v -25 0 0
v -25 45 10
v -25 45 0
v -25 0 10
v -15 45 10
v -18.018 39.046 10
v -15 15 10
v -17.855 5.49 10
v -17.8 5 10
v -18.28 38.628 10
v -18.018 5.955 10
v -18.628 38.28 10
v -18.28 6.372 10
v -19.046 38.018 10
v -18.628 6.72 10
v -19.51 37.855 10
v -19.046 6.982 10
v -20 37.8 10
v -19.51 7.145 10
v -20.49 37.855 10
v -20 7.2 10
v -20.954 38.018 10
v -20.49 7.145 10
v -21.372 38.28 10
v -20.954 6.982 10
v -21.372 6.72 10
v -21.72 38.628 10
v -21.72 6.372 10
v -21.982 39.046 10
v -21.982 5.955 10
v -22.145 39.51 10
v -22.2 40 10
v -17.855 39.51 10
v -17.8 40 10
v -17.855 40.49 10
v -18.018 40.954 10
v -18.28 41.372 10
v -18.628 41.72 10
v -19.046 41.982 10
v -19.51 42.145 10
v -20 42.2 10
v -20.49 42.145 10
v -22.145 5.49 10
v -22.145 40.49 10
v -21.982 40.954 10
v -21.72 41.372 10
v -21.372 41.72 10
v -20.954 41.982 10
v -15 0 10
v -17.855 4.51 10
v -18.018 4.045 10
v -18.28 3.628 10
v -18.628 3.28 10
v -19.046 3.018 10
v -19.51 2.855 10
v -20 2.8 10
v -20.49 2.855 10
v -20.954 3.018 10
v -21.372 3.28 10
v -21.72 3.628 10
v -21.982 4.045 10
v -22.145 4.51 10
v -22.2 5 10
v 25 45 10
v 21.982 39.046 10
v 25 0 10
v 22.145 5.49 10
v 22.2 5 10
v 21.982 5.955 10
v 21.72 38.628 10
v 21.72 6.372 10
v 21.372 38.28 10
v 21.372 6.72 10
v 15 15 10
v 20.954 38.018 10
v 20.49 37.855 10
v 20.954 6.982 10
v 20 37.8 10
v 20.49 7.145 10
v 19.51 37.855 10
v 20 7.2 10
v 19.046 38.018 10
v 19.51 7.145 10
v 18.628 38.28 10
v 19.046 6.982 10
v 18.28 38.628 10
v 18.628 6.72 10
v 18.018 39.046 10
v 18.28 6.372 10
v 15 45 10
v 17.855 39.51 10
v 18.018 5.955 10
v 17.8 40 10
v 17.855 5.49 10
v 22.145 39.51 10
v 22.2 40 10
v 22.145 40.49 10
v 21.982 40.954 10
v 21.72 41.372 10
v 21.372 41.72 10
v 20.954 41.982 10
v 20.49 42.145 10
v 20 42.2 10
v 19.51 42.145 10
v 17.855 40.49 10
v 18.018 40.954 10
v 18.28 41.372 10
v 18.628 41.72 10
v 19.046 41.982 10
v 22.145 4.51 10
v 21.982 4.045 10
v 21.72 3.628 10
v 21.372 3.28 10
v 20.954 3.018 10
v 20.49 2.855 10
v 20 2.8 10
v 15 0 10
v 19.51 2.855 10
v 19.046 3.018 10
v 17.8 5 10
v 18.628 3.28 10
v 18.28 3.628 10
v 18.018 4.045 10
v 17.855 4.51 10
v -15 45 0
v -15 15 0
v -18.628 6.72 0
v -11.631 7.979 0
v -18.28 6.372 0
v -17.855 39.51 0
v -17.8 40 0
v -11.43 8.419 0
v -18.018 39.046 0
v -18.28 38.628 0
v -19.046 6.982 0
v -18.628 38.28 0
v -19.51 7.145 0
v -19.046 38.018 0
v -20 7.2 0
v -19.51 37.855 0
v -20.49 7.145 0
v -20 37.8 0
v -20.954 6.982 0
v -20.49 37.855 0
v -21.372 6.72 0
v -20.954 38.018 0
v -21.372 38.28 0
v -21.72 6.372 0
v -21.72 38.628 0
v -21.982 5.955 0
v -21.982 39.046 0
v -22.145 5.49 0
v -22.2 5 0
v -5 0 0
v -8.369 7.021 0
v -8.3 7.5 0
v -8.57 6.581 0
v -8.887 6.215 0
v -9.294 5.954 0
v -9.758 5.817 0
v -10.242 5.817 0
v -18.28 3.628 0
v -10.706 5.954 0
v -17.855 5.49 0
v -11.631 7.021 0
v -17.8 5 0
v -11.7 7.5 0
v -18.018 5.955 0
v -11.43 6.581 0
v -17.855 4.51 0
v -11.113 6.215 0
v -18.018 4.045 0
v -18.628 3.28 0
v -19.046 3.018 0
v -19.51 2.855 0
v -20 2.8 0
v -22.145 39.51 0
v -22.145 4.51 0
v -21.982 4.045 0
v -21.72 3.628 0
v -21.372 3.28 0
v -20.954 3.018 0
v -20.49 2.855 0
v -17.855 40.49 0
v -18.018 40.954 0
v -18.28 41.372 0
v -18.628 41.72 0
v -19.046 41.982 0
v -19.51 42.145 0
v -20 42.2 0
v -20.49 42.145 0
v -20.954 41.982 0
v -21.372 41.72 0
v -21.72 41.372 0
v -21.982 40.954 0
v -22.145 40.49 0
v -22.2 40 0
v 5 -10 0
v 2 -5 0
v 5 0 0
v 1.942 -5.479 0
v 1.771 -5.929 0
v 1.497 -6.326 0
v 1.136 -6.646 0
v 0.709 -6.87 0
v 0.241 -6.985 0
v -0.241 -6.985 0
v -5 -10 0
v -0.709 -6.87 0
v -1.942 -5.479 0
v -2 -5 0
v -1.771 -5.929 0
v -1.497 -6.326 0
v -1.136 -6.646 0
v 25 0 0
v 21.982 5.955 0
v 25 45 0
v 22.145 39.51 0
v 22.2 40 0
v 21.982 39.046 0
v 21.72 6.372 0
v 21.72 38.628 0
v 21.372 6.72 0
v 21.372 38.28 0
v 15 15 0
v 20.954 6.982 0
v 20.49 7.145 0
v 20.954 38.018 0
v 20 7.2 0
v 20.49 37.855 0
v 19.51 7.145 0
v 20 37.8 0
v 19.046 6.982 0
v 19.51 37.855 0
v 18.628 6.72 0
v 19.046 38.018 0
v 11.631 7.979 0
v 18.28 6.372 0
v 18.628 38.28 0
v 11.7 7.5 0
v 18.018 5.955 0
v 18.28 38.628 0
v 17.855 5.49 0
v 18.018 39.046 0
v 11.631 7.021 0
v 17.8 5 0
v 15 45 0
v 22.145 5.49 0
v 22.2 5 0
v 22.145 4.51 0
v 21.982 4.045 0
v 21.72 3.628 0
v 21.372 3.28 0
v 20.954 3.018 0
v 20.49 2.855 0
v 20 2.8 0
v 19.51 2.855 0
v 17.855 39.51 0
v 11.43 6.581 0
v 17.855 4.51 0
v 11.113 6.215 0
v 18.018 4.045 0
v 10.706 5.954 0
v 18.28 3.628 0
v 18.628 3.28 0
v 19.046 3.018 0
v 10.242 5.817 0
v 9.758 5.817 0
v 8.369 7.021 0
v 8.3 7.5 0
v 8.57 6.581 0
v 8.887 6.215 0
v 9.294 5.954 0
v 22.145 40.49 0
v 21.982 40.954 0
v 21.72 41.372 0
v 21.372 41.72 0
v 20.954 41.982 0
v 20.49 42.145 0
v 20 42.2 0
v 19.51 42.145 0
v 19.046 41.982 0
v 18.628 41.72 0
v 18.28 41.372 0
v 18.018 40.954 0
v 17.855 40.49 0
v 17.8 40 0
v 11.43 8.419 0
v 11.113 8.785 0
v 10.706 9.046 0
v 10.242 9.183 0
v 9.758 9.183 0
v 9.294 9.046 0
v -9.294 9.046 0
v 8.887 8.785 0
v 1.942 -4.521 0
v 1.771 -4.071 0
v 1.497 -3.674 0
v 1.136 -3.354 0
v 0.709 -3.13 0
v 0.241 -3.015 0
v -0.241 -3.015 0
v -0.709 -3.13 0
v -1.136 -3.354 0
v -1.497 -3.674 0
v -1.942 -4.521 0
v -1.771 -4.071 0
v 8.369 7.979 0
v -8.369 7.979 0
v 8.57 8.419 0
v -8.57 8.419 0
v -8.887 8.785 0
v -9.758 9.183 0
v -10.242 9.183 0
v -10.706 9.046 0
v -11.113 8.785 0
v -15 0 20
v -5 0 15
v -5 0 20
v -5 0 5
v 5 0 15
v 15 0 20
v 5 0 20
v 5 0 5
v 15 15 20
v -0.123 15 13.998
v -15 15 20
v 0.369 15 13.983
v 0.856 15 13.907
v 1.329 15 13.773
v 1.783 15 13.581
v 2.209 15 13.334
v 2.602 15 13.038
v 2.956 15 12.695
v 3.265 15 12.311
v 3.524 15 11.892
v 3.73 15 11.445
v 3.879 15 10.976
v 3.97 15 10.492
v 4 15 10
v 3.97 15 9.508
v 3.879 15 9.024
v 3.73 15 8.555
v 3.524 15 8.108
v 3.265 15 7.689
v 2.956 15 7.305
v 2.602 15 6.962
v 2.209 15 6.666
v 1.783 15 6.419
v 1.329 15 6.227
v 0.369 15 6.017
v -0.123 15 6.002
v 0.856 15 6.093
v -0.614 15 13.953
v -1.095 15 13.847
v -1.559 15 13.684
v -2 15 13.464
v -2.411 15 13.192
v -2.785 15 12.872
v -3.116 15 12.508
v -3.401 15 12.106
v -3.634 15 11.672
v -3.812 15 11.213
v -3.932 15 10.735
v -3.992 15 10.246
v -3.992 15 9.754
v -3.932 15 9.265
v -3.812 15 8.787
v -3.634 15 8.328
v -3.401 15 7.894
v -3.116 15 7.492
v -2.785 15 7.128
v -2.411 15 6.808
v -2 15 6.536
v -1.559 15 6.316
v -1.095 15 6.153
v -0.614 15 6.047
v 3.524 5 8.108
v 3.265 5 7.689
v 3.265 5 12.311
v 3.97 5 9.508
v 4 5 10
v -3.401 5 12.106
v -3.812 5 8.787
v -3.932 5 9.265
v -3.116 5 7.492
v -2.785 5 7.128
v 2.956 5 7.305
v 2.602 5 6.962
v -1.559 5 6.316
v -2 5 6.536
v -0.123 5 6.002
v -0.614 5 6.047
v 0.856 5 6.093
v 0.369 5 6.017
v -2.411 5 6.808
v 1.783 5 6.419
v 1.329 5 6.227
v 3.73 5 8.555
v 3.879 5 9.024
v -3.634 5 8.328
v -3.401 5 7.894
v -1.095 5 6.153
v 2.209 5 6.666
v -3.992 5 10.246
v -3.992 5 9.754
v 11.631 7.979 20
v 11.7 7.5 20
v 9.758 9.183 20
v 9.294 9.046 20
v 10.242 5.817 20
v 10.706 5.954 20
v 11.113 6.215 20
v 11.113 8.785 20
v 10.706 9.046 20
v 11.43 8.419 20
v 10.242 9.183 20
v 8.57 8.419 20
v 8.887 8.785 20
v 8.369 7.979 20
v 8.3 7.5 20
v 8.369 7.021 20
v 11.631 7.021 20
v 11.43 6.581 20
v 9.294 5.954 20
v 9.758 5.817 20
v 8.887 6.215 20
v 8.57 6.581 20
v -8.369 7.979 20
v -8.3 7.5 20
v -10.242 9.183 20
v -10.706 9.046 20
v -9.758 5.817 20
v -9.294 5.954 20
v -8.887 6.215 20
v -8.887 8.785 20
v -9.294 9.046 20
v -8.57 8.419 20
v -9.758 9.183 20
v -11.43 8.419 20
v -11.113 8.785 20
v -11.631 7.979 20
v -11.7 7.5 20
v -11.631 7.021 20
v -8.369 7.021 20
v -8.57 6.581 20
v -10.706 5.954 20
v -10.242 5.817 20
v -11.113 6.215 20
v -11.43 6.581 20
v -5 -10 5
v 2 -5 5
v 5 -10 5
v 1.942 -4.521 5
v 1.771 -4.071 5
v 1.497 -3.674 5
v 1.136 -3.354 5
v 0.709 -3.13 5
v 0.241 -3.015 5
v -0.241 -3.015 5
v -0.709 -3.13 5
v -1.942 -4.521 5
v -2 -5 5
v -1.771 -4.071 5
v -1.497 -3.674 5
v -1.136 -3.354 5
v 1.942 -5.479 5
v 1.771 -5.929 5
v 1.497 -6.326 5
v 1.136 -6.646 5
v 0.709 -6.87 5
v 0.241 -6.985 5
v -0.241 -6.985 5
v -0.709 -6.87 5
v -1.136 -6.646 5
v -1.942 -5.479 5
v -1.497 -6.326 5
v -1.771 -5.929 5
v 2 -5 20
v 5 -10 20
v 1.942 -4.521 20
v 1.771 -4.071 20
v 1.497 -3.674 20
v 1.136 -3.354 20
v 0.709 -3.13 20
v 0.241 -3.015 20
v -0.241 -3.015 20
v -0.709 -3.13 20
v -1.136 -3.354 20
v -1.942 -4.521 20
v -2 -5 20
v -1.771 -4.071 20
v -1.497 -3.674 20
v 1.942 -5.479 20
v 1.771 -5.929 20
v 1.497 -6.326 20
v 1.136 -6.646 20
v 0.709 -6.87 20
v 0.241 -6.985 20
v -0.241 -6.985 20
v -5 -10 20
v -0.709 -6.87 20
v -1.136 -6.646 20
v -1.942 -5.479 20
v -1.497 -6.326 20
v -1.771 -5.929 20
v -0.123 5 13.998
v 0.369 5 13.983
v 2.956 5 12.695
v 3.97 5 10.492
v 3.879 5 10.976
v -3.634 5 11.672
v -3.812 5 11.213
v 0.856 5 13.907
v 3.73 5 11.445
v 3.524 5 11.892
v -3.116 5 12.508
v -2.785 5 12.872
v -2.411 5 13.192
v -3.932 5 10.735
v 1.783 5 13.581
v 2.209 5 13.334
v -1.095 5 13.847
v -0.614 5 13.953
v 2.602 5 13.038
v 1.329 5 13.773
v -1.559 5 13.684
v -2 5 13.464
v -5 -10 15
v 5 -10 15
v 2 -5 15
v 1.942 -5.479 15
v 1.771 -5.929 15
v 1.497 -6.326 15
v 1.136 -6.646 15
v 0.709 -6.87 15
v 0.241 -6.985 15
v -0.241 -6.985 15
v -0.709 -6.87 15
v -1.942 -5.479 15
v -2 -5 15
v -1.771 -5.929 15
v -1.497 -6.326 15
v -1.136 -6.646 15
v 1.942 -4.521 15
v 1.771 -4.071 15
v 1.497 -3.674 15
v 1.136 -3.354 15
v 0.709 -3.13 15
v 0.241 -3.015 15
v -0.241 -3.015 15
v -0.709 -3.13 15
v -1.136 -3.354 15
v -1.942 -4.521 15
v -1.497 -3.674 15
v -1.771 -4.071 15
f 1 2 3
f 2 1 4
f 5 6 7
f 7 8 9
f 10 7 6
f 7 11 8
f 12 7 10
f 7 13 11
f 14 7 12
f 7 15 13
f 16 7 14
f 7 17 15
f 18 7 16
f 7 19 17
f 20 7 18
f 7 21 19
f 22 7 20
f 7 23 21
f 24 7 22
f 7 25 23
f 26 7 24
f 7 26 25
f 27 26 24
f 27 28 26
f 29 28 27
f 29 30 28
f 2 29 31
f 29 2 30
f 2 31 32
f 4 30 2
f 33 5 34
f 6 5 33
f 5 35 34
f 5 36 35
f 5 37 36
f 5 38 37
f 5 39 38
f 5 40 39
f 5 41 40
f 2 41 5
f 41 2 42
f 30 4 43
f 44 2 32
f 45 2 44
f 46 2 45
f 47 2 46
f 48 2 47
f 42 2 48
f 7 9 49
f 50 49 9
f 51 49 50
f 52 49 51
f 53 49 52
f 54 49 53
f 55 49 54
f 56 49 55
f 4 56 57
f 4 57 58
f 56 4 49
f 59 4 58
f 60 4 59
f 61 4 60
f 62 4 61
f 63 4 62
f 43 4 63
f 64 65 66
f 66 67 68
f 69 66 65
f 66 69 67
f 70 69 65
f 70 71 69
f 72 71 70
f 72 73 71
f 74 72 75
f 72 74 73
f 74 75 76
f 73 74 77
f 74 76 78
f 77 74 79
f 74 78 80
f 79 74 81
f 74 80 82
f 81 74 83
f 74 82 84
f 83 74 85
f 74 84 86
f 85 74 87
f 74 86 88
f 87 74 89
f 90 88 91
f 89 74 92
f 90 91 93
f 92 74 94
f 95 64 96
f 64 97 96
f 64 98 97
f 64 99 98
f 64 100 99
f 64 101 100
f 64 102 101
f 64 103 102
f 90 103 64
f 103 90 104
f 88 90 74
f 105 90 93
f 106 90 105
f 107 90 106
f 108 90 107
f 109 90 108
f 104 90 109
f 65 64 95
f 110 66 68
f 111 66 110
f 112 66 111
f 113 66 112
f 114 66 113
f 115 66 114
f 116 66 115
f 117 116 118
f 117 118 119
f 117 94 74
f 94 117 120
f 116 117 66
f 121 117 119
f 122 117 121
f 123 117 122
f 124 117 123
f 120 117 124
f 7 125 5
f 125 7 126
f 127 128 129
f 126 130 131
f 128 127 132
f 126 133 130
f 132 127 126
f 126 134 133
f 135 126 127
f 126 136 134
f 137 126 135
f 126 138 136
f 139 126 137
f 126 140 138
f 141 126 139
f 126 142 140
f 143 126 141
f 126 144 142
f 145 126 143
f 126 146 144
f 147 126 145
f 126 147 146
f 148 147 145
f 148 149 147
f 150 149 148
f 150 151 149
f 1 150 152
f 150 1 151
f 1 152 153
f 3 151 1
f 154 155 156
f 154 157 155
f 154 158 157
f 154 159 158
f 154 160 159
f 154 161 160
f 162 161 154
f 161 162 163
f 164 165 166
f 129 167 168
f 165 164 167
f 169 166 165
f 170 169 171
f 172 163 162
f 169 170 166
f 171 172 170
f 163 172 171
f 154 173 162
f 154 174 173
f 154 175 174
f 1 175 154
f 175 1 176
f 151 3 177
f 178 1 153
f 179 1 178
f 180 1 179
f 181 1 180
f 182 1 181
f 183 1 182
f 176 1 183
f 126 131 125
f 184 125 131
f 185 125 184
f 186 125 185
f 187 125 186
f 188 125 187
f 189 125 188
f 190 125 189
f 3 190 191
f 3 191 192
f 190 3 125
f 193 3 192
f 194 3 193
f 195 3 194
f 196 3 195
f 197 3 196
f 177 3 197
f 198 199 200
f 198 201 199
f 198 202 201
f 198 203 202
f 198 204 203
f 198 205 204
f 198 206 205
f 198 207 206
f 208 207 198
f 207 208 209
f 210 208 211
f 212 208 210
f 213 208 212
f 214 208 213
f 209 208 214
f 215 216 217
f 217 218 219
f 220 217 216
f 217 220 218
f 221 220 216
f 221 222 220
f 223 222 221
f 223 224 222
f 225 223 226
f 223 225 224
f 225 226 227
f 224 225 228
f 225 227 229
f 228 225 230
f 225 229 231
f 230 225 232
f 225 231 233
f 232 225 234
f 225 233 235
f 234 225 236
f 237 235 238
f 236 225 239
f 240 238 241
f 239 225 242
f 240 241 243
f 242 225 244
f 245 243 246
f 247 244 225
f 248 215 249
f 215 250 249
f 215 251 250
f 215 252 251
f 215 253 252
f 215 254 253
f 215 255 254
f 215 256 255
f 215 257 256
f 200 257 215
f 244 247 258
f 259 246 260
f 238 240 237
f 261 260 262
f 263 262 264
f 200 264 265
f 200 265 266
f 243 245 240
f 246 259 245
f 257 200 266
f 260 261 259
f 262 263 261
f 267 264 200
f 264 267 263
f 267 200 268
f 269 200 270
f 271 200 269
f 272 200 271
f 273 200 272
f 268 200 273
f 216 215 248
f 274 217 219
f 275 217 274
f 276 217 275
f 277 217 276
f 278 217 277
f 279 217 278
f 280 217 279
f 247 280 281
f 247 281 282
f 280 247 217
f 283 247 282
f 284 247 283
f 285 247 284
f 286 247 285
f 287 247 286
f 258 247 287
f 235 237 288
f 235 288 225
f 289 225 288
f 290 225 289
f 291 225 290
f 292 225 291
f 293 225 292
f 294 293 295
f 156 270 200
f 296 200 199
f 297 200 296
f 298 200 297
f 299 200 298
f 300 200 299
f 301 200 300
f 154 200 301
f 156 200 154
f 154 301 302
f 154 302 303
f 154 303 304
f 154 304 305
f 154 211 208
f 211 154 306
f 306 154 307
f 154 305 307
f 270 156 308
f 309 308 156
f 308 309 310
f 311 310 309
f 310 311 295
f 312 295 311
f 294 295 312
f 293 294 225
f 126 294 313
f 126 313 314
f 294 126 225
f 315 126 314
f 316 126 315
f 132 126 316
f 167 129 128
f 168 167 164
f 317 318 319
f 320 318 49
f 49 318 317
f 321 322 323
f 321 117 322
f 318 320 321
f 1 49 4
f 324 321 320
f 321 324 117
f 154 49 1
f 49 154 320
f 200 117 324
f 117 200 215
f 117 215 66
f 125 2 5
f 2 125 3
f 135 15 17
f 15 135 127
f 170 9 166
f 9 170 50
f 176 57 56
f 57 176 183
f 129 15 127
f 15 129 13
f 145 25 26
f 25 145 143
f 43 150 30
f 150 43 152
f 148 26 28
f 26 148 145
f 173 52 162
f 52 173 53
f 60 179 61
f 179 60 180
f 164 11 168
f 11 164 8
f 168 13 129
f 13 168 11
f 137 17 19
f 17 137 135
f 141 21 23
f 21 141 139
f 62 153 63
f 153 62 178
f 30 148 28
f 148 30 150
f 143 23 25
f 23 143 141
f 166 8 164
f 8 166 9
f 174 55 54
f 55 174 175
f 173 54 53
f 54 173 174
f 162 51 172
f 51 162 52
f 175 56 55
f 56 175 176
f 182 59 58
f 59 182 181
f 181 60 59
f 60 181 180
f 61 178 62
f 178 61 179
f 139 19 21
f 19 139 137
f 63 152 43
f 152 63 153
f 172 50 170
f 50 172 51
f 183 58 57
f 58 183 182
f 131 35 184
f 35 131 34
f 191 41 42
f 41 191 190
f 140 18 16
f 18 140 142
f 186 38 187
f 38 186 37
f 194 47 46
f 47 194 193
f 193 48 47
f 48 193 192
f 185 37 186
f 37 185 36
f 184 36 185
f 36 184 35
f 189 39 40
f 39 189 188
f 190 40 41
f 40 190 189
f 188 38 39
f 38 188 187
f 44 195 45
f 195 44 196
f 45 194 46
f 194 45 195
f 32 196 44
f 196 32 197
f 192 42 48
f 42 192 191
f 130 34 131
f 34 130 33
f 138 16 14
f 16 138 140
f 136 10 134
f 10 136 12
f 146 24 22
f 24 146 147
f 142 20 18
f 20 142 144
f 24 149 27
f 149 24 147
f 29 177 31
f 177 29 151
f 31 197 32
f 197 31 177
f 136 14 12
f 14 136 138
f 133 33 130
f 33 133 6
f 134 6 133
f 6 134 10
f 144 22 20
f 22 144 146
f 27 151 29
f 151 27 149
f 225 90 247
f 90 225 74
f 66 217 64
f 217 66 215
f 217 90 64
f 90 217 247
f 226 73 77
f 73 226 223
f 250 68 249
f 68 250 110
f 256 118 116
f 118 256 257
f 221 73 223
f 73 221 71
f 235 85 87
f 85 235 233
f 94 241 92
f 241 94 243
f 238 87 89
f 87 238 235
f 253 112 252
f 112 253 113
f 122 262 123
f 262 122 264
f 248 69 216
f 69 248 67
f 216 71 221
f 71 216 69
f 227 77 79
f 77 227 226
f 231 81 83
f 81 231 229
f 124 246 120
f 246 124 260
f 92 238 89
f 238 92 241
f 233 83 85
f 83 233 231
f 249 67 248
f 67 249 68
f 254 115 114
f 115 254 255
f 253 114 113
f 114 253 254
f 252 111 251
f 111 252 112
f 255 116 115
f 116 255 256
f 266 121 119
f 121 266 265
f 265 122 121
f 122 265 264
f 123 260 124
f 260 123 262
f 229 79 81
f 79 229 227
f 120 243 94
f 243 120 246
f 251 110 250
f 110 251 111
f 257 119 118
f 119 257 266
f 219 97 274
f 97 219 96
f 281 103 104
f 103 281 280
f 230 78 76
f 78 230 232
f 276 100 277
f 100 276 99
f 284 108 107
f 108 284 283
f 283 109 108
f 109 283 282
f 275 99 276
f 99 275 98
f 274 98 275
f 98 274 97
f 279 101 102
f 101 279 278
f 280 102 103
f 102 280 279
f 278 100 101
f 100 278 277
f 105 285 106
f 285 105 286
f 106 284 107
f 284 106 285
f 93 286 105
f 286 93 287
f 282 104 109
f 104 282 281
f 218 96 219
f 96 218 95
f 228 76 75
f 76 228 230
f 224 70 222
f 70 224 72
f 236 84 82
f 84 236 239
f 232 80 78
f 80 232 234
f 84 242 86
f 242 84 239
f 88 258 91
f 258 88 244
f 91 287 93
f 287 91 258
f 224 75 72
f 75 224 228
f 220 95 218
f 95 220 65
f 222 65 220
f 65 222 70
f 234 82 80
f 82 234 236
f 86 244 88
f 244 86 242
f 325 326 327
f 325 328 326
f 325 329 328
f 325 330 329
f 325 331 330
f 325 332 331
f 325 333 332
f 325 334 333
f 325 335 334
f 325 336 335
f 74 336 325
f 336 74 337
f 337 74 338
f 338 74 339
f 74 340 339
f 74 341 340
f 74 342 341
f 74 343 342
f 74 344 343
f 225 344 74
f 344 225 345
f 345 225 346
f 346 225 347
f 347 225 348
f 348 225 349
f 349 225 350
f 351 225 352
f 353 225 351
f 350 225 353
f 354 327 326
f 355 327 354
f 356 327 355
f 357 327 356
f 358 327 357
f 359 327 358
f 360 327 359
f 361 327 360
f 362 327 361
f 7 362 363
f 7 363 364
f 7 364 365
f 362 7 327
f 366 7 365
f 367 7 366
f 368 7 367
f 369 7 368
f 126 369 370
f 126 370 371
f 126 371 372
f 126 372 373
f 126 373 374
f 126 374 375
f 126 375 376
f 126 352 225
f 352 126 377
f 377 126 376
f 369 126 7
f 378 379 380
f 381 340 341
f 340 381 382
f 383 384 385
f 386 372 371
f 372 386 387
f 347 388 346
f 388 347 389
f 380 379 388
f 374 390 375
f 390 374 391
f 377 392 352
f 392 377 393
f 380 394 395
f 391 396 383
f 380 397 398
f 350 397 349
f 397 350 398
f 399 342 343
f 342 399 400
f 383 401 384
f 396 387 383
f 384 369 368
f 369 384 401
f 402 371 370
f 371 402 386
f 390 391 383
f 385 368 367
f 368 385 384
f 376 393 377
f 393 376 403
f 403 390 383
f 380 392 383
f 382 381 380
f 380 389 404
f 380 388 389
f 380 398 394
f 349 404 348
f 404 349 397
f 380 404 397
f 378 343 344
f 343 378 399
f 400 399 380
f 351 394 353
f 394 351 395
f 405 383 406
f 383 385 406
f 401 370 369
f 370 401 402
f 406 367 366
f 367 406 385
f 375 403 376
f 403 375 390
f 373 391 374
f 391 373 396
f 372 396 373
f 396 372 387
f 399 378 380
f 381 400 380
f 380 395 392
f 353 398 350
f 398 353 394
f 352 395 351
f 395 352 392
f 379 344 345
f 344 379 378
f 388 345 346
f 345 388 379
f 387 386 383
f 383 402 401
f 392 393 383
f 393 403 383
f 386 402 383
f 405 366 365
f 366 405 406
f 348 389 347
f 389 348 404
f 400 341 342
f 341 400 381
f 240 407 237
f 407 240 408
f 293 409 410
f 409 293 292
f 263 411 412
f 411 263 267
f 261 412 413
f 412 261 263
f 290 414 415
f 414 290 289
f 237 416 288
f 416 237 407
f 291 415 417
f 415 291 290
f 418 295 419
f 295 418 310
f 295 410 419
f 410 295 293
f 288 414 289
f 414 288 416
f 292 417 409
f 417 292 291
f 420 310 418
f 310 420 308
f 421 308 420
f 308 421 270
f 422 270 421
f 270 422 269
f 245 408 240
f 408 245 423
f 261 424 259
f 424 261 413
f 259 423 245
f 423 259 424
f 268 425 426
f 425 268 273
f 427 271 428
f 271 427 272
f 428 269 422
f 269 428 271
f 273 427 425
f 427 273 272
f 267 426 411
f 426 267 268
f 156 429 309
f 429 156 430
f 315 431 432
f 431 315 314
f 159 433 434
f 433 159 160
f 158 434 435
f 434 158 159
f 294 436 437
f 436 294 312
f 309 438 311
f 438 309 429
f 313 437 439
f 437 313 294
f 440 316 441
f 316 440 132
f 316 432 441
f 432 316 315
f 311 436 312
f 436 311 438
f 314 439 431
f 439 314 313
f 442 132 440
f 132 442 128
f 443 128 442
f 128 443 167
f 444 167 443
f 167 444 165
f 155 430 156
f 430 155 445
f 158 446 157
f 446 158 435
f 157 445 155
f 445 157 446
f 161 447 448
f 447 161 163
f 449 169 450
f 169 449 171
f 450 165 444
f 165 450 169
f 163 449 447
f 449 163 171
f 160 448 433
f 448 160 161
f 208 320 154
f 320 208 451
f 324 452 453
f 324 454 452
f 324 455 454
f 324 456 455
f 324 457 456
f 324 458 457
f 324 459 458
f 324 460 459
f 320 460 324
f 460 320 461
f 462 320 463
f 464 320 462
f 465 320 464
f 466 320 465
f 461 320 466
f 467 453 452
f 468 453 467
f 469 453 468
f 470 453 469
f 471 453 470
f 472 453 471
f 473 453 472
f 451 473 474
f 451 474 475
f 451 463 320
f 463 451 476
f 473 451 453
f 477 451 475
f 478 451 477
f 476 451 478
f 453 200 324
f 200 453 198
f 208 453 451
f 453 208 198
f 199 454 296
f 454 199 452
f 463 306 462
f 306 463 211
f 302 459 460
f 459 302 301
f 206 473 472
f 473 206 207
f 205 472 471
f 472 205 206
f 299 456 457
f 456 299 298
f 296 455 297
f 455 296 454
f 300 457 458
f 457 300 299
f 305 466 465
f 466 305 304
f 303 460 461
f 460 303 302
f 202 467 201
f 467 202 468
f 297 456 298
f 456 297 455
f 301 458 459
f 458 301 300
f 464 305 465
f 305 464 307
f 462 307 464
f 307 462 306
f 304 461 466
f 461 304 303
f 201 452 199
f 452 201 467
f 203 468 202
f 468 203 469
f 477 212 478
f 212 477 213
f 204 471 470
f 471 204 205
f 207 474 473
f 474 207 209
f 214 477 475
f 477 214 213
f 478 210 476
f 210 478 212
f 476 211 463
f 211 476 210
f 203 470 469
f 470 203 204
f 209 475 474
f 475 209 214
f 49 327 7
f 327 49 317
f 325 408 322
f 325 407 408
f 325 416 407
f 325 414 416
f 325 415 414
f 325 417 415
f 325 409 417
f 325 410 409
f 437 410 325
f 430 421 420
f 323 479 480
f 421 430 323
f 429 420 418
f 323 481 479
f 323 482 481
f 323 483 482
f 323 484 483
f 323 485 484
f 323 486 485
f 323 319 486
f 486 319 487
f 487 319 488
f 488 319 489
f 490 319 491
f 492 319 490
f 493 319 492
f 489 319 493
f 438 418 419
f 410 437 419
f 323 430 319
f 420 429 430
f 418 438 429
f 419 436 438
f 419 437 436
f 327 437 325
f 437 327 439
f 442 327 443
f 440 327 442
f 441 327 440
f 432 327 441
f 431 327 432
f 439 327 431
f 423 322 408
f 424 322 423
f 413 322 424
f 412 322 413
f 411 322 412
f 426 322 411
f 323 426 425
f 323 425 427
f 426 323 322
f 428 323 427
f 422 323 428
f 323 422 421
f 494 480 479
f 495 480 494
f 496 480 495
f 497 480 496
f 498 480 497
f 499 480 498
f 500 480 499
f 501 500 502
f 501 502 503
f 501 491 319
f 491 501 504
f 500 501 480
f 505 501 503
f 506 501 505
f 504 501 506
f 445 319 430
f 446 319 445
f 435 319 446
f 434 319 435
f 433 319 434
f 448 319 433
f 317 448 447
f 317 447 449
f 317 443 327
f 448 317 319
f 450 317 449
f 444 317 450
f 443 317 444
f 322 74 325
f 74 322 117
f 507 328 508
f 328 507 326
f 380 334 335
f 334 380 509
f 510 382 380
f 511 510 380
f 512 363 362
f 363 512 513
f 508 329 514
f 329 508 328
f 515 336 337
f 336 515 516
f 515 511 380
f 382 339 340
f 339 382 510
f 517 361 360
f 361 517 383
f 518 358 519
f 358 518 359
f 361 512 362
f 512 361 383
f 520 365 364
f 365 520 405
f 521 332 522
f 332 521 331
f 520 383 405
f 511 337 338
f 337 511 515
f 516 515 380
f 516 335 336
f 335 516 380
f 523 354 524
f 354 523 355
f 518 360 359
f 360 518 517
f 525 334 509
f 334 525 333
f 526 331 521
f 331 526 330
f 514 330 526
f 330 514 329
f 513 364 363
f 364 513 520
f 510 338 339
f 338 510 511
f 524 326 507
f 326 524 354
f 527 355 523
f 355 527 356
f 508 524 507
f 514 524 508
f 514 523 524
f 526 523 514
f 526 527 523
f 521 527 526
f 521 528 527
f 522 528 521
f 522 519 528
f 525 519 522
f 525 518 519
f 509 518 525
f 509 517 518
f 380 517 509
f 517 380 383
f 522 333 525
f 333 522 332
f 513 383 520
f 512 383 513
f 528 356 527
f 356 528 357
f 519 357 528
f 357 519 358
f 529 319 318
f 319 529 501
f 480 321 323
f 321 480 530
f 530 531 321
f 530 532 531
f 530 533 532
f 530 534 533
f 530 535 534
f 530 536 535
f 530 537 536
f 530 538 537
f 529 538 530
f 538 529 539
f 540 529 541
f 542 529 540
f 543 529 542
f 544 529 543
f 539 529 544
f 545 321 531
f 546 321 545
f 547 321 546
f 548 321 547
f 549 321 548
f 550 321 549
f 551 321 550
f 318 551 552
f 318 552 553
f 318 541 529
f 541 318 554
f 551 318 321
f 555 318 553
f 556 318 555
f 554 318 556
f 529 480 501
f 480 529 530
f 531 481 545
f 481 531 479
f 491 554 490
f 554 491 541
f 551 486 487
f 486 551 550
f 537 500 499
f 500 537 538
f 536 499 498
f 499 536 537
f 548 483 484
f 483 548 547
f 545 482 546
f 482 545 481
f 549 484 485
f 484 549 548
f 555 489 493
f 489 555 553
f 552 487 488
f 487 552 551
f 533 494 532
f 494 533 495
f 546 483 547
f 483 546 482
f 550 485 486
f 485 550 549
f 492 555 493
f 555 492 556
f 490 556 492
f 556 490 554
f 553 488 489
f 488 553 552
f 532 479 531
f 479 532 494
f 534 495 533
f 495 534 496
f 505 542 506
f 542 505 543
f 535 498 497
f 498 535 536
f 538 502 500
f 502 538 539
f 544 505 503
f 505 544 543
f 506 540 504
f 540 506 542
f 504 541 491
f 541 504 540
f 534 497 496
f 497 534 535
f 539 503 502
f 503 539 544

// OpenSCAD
// file: nutTrap.scad
module NutTrap(screw="m3", trapDepth=0, depth=100) {
		hexEdge=3.1;
		trapDepth = trapDepth==0 ? 2.4 : trapDepth;
		holeDiam=3.4;

	union() {
		translate([0,0,-.5])
			linear_extrude(height=trapDepth+.5)
			polygon(points=[
				[-hexEdge,0],
				[-hexEdge*sin(30), -hexEdge*cos(30)],
				[hexEdge*sin(30), -hexEdge*cos(30)],
				[hexEdge,0],
				[hexEdge*sin(30), hexEdge*cos(30)],
				[-hexEdge*sin(30), hexEdge*cos(30)]]);
		cylinder(d=holeDiam, h=depth);
	}
}

NutTrap();
// file: Parameters.scad
/* Frame and Hardware Parameters */
bracketThickness = 5;
extrusionThickness = 15;
narrowScrewHoleSpacing = 15;
wideScrewHoleSpacing = 30;
screwHoleDiam = 4;


/* Design Parameters */
XYSpacing = 20;
platformLength = 153;

/* Gear Parameters */
gearDiam = 30;

/*clamp parameters*/
clampWidth = 30;


/* 608 Bearing Mount Parameters */
bearingHolderWallThickness = 3;
bearingHolderWallHeight = 4;
bearingRadius = 11;

/* rod parameters */
rodClearance = 10;
rodDiam = 8;

/* top bracket parameters */
gearSpacing = 10; // spacing between gear and extrusion
exteriorSpace = 10; // spacing beyond the bearing mount

/* lower bracket parameters */
footHeight = 10;
footDimension = bracketThickness + extrusionThickness;
bracketInnerDimension = 30;

/* nema mount size */
nemaMountSize = 40;
slideyNemaMountSize = 60;

/* Z axis Parameters */
ZSupportSpacing = 50; //how wide the Z supports are
zSupportBeamSpacing = nemaMountSize / 2; //how far the z supports are from the beam

$fs = .5;
$fa = 3;
// main file
include <Parameters.scad> // at the moment, just for circle parameters
use <nutTrap.scad>
//TODO: parametrize for rod diameter, igubal sizing (incl. screws), make igubal use nut traps

genTop=true;
genBottom=true;


module igubalBlobule() {
	difference() {
		cube([10,45,10]);
		translate ([5,5,-5])
			cylinder(d=4.4, h=100);
		translate ([5,40,-5])
			cylinder(d=4.4, h=100);
	}
}

difference () {
	translate ([-25,0, 0]) {
		translate([0,0,0]) igubalBlobule();
		translate([40,0,0])igubalBlobule();
		translate([25,0,0])
				difference() {
					translate ([-15,0,0])cube([30,15,10]);
					translate([0,5,10]) rotate([-90,0,0]) cylinder(d=8,h=100);
				}
	}
	translate ([10, 7.5, -5]) cylinder(d=3.4, h=100);
	translate ([-10, 7.5, -5]) cylinder(d=3.4, h=100);
}

difference () {
	translate([-5,-10,0]) {
		cube([10,10,5]);
	}
	translate([0,-5,-1]) {
		cylinder(d=screwHoleDiam, h=100);
	}
}

if (genTop) {
difference() {
	translate ([-15,0,10])cube([30,15,10]);
	translate([0,5,10]) rotate([-90,0,0]) cylinder(d=8,h=100);
	
	translate ([10, 7.5, -5]) cylinder(d=3.4, h=100);
	translate ([-10, 7.5, -5]) cylinder(d=3.4, h=100);
}

difference() {
	translate ([-5,-10,15]) cube([10,10,5]);
	translate ([0,-5,0]) cylinder(d=screwHoleDiam, h=100);
}
}
